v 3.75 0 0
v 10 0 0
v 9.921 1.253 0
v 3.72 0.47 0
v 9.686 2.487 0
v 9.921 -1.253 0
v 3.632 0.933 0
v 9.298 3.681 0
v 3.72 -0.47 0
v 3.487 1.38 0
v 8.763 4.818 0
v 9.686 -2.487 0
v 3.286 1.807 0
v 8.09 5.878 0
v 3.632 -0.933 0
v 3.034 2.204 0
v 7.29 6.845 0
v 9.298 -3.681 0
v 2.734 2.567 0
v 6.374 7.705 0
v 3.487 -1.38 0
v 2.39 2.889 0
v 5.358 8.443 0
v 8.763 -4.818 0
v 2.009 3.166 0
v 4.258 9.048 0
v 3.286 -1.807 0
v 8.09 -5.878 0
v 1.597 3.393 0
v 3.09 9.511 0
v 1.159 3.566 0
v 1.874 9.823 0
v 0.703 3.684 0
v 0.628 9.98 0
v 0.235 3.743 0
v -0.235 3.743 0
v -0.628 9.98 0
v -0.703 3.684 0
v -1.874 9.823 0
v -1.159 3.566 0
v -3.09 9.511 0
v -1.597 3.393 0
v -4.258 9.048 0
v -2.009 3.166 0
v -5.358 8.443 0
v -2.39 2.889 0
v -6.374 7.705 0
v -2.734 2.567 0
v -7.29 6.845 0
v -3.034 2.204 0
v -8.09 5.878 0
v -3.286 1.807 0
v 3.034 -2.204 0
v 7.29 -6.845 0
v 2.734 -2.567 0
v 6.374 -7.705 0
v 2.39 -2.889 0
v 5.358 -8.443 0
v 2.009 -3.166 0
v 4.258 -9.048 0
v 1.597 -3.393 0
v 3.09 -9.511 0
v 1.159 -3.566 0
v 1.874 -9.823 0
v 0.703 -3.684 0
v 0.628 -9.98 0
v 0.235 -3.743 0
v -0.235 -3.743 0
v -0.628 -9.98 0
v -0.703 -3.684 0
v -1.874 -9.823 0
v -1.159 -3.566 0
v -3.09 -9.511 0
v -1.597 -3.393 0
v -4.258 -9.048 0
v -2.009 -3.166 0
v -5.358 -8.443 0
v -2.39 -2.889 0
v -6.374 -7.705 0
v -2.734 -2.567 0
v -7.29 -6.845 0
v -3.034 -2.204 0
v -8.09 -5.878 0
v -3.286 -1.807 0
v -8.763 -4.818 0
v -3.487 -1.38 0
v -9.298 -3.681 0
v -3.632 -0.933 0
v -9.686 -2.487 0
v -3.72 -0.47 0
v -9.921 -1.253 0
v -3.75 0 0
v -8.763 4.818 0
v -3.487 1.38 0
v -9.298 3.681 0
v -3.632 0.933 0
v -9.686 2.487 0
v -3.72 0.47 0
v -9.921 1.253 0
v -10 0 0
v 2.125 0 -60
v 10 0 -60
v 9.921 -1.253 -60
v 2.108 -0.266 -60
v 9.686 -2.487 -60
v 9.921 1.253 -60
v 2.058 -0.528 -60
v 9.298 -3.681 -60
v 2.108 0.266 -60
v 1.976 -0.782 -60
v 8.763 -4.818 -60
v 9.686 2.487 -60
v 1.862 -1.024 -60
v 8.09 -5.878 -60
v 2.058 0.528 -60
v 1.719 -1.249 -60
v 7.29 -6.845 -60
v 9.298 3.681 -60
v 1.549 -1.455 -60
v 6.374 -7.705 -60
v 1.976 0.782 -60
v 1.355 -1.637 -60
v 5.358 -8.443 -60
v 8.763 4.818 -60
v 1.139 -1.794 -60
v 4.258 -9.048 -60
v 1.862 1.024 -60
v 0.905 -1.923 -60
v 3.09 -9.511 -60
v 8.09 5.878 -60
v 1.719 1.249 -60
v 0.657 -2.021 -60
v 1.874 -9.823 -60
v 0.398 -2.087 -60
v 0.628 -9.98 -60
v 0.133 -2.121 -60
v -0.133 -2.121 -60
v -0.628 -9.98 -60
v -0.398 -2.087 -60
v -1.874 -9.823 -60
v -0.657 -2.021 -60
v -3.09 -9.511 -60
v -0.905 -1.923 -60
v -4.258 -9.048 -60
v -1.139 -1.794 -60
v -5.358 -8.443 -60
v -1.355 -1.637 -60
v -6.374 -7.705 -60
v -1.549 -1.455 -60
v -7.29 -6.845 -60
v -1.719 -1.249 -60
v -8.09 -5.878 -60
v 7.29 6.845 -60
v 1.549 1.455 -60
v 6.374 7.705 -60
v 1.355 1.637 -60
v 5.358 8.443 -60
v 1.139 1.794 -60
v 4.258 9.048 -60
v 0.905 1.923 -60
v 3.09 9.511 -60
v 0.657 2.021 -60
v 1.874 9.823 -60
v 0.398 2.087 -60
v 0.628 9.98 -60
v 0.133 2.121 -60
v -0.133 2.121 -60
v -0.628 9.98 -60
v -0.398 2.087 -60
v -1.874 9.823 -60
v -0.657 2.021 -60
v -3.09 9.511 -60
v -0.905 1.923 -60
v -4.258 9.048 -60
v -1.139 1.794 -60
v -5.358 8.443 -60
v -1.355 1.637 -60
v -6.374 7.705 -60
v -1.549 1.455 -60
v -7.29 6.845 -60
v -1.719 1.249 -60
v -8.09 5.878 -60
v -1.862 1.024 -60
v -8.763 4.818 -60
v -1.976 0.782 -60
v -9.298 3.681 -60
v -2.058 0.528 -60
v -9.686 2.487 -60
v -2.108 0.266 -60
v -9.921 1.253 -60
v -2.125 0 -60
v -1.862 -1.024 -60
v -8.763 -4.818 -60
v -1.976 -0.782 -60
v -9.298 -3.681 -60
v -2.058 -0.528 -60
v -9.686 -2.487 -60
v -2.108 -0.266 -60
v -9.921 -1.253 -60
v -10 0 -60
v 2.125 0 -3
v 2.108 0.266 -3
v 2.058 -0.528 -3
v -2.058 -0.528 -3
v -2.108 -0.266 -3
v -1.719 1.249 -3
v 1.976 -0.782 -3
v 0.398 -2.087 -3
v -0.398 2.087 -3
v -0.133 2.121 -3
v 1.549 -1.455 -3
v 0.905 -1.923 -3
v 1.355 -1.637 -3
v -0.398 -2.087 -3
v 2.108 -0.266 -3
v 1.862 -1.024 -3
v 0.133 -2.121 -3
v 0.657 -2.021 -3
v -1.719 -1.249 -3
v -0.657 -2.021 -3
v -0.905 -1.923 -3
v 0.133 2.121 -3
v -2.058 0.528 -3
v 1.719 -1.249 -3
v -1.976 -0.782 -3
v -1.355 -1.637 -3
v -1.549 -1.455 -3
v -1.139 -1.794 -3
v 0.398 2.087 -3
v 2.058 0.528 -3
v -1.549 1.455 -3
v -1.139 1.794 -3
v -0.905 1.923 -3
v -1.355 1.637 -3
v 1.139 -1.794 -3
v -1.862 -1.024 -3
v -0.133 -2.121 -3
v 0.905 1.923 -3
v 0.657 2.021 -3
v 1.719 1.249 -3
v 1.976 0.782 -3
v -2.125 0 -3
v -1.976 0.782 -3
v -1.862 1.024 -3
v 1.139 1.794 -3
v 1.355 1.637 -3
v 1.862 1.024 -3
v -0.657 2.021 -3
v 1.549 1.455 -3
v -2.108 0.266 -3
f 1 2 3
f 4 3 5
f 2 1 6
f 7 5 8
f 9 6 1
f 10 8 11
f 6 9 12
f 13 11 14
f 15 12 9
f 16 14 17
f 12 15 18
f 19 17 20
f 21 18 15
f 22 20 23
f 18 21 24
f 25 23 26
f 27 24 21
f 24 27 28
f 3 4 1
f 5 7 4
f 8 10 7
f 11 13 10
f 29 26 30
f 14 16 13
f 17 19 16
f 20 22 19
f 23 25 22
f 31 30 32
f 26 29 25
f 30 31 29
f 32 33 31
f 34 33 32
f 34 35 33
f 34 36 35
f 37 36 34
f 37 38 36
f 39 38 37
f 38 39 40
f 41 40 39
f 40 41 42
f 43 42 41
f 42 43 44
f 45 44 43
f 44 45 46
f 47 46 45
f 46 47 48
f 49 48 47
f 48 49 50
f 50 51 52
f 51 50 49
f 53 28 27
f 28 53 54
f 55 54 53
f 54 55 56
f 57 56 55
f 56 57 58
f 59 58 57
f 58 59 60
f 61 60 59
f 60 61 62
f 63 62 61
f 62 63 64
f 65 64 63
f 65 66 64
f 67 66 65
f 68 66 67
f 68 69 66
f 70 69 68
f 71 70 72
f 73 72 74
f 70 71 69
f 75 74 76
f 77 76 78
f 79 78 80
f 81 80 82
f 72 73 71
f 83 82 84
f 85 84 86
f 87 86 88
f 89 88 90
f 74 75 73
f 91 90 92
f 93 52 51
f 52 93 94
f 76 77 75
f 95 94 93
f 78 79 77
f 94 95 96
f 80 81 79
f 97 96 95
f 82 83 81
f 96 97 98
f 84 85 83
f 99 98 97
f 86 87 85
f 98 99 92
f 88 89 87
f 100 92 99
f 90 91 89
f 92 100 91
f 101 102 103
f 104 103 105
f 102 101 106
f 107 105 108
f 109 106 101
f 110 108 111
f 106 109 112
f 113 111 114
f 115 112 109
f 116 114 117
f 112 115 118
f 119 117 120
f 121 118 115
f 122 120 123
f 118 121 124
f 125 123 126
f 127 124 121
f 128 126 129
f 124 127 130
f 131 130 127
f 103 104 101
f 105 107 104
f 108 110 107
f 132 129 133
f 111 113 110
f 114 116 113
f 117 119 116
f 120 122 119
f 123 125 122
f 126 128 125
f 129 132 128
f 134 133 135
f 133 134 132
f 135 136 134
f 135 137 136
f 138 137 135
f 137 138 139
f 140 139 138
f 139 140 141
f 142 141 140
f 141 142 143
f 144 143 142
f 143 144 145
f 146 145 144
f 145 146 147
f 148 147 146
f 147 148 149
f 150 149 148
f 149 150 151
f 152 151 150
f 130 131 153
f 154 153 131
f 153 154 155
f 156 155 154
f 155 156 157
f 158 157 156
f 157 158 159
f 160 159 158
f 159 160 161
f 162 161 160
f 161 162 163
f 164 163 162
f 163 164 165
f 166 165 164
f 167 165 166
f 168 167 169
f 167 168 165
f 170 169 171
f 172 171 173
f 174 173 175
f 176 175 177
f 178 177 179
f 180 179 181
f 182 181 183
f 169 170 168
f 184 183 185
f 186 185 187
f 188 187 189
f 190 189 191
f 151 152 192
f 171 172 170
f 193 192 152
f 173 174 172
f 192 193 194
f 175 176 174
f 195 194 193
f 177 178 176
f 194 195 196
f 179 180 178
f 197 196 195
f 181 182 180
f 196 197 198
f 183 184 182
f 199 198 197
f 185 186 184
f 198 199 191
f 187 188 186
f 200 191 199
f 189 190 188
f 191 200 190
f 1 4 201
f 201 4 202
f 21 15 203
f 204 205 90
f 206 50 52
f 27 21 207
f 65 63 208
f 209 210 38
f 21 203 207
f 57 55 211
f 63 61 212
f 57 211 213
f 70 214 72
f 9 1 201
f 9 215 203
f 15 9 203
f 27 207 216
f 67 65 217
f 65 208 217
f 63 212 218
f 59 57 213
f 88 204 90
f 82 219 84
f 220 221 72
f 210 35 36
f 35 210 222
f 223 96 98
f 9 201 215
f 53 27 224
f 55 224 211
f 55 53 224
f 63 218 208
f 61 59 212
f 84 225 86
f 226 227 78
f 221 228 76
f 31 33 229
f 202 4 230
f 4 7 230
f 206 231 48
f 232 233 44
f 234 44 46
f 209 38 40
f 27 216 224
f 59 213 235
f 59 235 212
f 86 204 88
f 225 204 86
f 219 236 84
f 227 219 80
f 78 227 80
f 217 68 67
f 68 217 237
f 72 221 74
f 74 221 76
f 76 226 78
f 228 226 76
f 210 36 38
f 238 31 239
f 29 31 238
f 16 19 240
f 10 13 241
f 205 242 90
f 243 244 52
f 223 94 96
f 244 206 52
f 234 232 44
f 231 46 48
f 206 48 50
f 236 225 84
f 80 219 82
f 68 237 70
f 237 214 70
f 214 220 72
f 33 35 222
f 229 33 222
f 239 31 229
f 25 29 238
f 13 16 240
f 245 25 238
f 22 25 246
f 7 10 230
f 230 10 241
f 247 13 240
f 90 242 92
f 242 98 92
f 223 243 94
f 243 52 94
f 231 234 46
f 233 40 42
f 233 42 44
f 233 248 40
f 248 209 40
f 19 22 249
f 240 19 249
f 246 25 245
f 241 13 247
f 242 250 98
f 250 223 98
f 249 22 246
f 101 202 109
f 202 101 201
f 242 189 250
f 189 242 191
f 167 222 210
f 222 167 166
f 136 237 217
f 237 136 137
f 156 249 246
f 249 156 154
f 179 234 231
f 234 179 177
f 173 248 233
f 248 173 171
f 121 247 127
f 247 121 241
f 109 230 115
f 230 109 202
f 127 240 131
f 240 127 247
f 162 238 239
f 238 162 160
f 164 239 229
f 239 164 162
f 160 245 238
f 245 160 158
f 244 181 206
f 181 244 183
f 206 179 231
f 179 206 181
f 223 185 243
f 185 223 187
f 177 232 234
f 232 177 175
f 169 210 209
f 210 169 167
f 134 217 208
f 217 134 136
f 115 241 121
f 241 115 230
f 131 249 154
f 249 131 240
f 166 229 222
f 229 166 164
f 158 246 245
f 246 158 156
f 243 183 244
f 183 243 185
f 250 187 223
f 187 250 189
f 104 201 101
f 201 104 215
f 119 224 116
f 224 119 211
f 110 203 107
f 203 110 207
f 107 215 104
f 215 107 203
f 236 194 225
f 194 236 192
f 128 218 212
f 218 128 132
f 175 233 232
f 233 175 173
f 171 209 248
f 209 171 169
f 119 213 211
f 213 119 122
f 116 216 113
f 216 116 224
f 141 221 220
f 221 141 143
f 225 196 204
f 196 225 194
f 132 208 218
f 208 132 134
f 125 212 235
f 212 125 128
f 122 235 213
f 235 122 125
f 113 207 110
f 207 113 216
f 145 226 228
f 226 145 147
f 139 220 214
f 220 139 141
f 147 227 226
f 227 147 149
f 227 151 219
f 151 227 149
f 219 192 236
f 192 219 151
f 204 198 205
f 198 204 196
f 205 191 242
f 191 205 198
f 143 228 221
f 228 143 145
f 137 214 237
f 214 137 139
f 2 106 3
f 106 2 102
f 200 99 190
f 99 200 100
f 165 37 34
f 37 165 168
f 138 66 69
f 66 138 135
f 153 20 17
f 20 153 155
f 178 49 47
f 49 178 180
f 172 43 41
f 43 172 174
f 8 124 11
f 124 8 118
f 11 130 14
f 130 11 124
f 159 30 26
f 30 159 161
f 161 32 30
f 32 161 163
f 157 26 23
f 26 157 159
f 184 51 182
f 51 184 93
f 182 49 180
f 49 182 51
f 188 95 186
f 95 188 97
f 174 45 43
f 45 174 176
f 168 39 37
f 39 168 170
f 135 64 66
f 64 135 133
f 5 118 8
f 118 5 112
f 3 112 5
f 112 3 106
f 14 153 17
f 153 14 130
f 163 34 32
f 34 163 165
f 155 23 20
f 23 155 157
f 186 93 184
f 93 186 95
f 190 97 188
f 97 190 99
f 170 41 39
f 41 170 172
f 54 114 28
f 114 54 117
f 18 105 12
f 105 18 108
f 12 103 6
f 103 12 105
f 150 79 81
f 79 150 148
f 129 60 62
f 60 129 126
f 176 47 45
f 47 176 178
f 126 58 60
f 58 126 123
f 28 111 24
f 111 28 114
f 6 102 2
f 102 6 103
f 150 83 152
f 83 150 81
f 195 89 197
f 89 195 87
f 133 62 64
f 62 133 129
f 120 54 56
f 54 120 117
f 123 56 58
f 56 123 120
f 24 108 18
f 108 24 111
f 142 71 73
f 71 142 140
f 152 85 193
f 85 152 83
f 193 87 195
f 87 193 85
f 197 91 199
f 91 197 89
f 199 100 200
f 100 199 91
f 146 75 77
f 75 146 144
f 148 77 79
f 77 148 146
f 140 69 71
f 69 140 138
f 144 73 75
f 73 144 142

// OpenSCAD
$fn = 50;


difference() {
	union() {
		translate(v = [0, 0, -60.0000000000]) {
			cylinder(h = 60, r = 10.0000000000);
		}
		cylinder(h = 0, r = 16.0000000000);
	}
	union() {
		translate(v = [0, 0, 0]) {
			rotate(a = [0, 0, 0]) {
				difference() {
					union() {
						#translate(v = [0, 0, -60.0000000000]) {
							cylinder(h = 60, r = 2.0000000000);
						}
						#translate(v = [0, 0, -3]) {
							cylinder(h = 3, r1 = 2.1250000000, r2 = 3.7500000000);
						}
						#translate(v = [0, 0, -60.0000000000]) {
							cylinder(h = 60, r = 2.1250000000);
						}
						#translate(v = [0, 0, -60.0000000000]) {
							cylinder(h = 60, r = 2.0000000000);
						}
					}
					union();
				}
			}
		}
	}
}
